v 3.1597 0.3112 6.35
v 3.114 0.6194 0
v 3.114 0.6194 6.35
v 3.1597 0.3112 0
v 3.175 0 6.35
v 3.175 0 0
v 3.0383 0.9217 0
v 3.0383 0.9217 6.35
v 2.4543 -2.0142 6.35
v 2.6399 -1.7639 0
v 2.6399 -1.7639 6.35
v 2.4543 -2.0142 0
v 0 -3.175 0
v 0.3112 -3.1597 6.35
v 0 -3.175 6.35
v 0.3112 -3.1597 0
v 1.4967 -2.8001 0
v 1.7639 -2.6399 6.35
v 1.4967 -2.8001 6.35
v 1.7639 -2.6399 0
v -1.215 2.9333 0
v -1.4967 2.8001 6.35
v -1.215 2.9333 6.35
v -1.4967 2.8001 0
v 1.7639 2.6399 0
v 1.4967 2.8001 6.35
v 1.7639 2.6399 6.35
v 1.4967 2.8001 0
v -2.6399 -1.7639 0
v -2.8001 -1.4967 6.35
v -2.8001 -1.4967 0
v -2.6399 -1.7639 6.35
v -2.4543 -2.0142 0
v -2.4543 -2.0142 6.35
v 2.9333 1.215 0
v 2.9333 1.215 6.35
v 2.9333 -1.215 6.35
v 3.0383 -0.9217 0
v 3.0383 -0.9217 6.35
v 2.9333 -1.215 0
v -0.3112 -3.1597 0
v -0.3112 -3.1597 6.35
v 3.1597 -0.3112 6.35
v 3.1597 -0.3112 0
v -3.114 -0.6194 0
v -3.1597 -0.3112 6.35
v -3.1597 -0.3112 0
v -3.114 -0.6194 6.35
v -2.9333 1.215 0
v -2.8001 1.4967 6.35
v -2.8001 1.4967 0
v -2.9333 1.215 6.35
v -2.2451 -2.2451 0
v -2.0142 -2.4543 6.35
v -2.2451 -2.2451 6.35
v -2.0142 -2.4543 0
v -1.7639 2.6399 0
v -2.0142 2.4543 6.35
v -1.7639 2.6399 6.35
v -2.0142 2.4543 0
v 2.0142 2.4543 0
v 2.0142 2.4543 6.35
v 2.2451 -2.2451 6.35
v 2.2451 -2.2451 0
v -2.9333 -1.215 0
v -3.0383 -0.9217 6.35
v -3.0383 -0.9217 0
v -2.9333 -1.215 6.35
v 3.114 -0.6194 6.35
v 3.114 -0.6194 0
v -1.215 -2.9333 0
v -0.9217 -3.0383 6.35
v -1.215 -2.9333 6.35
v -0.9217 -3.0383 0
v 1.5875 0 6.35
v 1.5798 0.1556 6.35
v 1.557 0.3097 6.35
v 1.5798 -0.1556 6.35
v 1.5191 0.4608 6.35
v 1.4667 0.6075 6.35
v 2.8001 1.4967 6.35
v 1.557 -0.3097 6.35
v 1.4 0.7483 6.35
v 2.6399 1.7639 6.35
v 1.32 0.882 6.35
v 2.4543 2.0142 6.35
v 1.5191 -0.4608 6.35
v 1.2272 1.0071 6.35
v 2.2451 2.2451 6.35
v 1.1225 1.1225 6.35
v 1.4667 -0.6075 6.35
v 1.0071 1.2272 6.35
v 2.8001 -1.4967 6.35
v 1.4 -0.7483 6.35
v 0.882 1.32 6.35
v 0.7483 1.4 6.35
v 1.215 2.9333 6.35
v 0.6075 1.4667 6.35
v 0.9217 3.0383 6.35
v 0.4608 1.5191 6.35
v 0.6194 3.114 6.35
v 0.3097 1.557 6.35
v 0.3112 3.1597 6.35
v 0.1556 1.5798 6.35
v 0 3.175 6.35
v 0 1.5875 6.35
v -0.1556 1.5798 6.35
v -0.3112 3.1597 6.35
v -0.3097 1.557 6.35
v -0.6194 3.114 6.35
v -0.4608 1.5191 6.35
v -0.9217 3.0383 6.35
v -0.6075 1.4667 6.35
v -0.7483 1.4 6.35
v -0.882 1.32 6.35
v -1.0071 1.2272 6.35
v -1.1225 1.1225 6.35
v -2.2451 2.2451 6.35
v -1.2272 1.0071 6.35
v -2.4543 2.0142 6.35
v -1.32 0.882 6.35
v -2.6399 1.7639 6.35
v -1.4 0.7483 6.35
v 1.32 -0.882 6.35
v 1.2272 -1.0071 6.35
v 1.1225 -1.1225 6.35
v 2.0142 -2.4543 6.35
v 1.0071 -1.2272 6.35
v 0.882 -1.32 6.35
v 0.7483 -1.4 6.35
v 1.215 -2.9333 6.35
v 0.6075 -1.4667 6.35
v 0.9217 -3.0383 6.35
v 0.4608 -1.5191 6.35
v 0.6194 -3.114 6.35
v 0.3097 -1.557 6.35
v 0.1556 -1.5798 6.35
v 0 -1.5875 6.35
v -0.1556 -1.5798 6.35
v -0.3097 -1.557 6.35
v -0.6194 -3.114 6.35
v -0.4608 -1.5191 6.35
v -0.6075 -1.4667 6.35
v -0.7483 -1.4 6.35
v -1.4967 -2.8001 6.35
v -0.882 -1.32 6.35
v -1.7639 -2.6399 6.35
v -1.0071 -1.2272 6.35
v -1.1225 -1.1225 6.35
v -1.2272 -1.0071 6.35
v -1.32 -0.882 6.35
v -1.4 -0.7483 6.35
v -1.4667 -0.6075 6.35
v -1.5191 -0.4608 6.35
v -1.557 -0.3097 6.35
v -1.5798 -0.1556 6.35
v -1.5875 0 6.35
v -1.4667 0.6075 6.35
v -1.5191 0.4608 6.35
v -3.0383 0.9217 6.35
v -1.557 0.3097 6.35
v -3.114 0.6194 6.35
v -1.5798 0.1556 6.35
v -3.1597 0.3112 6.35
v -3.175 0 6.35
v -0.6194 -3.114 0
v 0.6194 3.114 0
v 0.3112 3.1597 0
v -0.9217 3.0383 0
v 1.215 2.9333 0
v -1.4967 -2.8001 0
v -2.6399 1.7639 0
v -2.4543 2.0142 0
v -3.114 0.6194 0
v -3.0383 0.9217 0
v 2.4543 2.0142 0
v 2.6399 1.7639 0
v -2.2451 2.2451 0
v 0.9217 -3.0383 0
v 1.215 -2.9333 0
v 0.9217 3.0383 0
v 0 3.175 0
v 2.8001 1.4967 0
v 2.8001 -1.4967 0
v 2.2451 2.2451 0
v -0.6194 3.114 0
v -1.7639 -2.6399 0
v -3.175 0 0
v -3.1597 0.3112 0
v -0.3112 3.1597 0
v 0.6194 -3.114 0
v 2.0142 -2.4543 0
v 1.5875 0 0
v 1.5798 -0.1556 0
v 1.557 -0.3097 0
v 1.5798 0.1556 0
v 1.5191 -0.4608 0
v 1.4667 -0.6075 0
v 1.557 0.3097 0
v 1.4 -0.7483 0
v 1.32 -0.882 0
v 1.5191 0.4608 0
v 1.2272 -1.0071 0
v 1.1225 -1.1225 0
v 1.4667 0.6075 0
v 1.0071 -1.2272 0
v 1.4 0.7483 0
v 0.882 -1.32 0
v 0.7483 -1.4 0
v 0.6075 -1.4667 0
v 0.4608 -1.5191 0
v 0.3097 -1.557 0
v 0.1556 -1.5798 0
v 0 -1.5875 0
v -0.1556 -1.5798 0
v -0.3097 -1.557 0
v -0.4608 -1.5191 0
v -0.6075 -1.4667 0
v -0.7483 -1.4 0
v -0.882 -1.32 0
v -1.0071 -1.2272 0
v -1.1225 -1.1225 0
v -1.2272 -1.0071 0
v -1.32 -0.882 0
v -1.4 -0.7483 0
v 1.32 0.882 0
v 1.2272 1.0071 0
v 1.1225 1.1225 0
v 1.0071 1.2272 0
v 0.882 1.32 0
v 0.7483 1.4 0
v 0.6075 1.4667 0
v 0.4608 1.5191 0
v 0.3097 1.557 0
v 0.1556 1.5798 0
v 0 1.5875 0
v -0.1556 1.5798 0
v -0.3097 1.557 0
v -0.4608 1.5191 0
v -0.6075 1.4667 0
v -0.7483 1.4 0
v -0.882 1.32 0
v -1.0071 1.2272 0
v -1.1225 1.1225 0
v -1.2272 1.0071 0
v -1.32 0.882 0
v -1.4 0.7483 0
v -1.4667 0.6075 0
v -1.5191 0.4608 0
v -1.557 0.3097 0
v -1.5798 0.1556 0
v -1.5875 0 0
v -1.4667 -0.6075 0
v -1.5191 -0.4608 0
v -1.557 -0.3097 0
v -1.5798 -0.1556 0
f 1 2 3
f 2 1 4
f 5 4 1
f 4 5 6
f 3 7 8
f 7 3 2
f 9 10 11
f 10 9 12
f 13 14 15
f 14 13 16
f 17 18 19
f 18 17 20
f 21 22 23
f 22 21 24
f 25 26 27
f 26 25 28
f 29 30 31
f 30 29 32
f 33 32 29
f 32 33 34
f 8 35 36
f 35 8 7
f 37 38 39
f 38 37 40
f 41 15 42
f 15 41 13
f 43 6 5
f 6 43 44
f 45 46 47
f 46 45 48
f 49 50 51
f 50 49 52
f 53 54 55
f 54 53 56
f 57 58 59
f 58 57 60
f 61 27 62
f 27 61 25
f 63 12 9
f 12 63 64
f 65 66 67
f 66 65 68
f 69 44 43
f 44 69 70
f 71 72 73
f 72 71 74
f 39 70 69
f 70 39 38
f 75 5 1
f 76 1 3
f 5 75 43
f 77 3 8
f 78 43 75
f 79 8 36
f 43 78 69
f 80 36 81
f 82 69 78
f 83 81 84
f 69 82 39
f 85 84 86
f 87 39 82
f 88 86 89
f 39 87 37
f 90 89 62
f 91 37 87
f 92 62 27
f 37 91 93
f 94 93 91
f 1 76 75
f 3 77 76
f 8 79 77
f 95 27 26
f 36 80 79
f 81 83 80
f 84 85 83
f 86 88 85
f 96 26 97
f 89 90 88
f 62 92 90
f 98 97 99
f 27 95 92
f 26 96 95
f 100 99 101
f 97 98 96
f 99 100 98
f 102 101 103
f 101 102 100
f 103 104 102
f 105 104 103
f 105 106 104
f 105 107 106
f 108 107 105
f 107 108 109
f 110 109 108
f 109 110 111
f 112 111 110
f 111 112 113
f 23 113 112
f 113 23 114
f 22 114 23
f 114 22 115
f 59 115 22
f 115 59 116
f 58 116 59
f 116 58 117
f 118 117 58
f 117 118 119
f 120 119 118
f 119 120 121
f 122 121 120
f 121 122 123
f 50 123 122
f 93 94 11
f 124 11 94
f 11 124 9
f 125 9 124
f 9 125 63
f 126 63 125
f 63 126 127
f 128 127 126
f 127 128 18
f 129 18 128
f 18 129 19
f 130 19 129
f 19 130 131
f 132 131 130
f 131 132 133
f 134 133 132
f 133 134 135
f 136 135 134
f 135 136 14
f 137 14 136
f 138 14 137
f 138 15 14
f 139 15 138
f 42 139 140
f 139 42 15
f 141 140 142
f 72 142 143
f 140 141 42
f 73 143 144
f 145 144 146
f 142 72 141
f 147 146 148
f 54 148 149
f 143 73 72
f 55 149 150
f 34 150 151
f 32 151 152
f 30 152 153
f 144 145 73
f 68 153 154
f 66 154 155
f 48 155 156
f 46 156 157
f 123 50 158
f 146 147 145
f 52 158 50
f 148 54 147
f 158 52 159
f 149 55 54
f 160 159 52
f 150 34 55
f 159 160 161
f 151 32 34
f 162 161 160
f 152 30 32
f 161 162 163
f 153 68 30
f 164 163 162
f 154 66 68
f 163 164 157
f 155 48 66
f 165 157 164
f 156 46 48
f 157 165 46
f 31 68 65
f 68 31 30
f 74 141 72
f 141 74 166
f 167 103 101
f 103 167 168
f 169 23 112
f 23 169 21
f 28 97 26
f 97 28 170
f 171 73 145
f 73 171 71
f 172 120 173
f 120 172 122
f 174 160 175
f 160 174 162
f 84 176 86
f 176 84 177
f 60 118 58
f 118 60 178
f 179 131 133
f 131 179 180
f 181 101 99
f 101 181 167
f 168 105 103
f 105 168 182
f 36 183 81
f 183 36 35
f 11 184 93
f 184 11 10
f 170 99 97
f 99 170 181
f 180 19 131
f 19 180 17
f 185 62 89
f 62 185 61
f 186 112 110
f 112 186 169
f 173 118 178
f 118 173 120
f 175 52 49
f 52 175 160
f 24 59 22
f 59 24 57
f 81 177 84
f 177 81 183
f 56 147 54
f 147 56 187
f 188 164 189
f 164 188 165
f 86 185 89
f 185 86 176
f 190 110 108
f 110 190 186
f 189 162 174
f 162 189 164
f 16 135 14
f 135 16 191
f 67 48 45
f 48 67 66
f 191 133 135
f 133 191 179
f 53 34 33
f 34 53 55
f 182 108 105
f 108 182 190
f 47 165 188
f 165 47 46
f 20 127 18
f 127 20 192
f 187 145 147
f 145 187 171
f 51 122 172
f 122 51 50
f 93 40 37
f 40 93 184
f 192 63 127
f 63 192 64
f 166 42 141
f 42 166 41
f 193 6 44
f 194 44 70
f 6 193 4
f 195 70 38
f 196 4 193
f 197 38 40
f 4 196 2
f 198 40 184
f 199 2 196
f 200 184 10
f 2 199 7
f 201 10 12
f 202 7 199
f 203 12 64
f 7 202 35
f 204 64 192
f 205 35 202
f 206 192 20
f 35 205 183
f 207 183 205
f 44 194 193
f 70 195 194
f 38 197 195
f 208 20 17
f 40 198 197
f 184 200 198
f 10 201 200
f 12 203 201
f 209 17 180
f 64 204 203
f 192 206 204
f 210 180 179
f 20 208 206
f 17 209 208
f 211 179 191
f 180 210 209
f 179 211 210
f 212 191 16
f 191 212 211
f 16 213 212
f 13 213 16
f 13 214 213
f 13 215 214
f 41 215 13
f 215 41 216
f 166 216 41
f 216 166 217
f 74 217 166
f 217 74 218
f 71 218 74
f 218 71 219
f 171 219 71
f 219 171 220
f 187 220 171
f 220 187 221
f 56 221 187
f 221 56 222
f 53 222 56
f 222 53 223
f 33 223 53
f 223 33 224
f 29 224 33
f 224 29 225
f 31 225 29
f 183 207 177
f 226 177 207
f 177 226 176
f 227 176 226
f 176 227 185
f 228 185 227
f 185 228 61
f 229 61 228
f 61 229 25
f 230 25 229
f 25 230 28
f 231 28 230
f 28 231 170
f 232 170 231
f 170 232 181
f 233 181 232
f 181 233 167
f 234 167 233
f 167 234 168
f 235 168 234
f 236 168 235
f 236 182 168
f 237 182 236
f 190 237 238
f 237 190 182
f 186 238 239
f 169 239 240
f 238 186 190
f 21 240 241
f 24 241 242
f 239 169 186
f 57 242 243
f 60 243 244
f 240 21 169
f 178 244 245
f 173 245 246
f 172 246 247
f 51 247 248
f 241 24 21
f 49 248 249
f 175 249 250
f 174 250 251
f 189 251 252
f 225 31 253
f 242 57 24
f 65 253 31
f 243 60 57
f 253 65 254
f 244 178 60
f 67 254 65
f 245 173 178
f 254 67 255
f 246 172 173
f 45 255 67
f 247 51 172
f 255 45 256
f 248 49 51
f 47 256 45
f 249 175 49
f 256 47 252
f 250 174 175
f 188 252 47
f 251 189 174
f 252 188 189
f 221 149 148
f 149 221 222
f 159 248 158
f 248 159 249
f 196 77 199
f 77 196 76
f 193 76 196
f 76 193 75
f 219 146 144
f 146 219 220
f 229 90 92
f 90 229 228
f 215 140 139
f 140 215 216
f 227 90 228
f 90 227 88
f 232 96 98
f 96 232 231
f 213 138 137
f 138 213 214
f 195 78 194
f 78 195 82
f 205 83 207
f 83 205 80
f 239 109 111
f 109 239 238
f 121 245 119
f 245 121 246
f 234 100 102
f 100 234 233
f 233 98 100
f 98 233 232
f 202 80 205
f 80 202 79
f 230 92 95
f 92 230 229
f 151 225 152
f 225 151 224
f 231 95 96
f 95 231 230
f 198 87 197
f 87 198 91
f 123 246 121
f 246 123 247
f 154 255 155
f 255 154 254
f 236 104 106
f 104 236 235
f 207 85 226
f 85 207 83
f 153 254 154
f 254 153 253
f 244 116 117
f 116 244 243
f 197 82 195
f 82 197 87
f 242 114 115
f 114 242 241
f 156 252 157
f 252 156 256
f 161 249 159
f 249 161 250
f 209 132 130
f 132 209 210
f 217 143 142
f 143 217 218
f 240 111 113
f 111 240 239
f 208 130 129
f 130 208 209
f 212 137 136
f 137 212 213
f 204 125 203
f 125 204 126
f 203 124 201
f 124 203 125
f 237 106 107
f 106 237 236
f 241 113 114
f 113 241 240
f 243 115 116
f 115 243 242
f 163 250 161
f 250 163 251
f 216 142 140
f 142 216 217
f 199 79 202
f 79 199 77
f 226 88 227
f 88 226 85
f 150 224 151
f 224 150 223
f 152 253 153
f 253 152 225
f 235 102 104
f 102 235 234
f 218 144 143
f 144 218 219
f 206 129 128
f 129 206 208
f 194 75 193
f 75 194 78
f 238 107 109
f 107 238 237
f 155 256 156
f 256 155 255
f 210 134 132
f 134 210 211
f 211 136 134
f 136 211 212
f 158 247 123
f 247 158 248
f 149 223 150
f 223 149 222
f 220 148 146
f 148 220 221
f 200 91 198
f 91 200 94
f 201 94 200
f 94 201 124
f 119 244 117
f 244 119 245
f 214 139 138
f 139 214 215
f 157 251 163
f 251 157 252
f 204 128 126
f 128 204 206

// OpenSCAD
cylinder_ring(outer_d=6.35, inner_d=3.175, height=6.35, corner_radius=0.5);

module cylinder_ring(outer_d, inner_d, height, corner_radius) {
    difference() {
        // Outer rounded cylinder
        cylinder(h=height, d=outer_d, $fn=64);
        // Inner cylinder
        translate([0, 0, -1]) // Slightly lower to ensure clean subtraction
            cylinder(h=height + 2, d=inner_d, $fn=64);
    }
    // Apply corner rounding
    translate([0, 0, height/2])
        rotate_extrude($fn=64)
            translate([outer_d/2 - corner_radius, 0, 0])
                circle(r=corner_radius, $fn=64);
}
